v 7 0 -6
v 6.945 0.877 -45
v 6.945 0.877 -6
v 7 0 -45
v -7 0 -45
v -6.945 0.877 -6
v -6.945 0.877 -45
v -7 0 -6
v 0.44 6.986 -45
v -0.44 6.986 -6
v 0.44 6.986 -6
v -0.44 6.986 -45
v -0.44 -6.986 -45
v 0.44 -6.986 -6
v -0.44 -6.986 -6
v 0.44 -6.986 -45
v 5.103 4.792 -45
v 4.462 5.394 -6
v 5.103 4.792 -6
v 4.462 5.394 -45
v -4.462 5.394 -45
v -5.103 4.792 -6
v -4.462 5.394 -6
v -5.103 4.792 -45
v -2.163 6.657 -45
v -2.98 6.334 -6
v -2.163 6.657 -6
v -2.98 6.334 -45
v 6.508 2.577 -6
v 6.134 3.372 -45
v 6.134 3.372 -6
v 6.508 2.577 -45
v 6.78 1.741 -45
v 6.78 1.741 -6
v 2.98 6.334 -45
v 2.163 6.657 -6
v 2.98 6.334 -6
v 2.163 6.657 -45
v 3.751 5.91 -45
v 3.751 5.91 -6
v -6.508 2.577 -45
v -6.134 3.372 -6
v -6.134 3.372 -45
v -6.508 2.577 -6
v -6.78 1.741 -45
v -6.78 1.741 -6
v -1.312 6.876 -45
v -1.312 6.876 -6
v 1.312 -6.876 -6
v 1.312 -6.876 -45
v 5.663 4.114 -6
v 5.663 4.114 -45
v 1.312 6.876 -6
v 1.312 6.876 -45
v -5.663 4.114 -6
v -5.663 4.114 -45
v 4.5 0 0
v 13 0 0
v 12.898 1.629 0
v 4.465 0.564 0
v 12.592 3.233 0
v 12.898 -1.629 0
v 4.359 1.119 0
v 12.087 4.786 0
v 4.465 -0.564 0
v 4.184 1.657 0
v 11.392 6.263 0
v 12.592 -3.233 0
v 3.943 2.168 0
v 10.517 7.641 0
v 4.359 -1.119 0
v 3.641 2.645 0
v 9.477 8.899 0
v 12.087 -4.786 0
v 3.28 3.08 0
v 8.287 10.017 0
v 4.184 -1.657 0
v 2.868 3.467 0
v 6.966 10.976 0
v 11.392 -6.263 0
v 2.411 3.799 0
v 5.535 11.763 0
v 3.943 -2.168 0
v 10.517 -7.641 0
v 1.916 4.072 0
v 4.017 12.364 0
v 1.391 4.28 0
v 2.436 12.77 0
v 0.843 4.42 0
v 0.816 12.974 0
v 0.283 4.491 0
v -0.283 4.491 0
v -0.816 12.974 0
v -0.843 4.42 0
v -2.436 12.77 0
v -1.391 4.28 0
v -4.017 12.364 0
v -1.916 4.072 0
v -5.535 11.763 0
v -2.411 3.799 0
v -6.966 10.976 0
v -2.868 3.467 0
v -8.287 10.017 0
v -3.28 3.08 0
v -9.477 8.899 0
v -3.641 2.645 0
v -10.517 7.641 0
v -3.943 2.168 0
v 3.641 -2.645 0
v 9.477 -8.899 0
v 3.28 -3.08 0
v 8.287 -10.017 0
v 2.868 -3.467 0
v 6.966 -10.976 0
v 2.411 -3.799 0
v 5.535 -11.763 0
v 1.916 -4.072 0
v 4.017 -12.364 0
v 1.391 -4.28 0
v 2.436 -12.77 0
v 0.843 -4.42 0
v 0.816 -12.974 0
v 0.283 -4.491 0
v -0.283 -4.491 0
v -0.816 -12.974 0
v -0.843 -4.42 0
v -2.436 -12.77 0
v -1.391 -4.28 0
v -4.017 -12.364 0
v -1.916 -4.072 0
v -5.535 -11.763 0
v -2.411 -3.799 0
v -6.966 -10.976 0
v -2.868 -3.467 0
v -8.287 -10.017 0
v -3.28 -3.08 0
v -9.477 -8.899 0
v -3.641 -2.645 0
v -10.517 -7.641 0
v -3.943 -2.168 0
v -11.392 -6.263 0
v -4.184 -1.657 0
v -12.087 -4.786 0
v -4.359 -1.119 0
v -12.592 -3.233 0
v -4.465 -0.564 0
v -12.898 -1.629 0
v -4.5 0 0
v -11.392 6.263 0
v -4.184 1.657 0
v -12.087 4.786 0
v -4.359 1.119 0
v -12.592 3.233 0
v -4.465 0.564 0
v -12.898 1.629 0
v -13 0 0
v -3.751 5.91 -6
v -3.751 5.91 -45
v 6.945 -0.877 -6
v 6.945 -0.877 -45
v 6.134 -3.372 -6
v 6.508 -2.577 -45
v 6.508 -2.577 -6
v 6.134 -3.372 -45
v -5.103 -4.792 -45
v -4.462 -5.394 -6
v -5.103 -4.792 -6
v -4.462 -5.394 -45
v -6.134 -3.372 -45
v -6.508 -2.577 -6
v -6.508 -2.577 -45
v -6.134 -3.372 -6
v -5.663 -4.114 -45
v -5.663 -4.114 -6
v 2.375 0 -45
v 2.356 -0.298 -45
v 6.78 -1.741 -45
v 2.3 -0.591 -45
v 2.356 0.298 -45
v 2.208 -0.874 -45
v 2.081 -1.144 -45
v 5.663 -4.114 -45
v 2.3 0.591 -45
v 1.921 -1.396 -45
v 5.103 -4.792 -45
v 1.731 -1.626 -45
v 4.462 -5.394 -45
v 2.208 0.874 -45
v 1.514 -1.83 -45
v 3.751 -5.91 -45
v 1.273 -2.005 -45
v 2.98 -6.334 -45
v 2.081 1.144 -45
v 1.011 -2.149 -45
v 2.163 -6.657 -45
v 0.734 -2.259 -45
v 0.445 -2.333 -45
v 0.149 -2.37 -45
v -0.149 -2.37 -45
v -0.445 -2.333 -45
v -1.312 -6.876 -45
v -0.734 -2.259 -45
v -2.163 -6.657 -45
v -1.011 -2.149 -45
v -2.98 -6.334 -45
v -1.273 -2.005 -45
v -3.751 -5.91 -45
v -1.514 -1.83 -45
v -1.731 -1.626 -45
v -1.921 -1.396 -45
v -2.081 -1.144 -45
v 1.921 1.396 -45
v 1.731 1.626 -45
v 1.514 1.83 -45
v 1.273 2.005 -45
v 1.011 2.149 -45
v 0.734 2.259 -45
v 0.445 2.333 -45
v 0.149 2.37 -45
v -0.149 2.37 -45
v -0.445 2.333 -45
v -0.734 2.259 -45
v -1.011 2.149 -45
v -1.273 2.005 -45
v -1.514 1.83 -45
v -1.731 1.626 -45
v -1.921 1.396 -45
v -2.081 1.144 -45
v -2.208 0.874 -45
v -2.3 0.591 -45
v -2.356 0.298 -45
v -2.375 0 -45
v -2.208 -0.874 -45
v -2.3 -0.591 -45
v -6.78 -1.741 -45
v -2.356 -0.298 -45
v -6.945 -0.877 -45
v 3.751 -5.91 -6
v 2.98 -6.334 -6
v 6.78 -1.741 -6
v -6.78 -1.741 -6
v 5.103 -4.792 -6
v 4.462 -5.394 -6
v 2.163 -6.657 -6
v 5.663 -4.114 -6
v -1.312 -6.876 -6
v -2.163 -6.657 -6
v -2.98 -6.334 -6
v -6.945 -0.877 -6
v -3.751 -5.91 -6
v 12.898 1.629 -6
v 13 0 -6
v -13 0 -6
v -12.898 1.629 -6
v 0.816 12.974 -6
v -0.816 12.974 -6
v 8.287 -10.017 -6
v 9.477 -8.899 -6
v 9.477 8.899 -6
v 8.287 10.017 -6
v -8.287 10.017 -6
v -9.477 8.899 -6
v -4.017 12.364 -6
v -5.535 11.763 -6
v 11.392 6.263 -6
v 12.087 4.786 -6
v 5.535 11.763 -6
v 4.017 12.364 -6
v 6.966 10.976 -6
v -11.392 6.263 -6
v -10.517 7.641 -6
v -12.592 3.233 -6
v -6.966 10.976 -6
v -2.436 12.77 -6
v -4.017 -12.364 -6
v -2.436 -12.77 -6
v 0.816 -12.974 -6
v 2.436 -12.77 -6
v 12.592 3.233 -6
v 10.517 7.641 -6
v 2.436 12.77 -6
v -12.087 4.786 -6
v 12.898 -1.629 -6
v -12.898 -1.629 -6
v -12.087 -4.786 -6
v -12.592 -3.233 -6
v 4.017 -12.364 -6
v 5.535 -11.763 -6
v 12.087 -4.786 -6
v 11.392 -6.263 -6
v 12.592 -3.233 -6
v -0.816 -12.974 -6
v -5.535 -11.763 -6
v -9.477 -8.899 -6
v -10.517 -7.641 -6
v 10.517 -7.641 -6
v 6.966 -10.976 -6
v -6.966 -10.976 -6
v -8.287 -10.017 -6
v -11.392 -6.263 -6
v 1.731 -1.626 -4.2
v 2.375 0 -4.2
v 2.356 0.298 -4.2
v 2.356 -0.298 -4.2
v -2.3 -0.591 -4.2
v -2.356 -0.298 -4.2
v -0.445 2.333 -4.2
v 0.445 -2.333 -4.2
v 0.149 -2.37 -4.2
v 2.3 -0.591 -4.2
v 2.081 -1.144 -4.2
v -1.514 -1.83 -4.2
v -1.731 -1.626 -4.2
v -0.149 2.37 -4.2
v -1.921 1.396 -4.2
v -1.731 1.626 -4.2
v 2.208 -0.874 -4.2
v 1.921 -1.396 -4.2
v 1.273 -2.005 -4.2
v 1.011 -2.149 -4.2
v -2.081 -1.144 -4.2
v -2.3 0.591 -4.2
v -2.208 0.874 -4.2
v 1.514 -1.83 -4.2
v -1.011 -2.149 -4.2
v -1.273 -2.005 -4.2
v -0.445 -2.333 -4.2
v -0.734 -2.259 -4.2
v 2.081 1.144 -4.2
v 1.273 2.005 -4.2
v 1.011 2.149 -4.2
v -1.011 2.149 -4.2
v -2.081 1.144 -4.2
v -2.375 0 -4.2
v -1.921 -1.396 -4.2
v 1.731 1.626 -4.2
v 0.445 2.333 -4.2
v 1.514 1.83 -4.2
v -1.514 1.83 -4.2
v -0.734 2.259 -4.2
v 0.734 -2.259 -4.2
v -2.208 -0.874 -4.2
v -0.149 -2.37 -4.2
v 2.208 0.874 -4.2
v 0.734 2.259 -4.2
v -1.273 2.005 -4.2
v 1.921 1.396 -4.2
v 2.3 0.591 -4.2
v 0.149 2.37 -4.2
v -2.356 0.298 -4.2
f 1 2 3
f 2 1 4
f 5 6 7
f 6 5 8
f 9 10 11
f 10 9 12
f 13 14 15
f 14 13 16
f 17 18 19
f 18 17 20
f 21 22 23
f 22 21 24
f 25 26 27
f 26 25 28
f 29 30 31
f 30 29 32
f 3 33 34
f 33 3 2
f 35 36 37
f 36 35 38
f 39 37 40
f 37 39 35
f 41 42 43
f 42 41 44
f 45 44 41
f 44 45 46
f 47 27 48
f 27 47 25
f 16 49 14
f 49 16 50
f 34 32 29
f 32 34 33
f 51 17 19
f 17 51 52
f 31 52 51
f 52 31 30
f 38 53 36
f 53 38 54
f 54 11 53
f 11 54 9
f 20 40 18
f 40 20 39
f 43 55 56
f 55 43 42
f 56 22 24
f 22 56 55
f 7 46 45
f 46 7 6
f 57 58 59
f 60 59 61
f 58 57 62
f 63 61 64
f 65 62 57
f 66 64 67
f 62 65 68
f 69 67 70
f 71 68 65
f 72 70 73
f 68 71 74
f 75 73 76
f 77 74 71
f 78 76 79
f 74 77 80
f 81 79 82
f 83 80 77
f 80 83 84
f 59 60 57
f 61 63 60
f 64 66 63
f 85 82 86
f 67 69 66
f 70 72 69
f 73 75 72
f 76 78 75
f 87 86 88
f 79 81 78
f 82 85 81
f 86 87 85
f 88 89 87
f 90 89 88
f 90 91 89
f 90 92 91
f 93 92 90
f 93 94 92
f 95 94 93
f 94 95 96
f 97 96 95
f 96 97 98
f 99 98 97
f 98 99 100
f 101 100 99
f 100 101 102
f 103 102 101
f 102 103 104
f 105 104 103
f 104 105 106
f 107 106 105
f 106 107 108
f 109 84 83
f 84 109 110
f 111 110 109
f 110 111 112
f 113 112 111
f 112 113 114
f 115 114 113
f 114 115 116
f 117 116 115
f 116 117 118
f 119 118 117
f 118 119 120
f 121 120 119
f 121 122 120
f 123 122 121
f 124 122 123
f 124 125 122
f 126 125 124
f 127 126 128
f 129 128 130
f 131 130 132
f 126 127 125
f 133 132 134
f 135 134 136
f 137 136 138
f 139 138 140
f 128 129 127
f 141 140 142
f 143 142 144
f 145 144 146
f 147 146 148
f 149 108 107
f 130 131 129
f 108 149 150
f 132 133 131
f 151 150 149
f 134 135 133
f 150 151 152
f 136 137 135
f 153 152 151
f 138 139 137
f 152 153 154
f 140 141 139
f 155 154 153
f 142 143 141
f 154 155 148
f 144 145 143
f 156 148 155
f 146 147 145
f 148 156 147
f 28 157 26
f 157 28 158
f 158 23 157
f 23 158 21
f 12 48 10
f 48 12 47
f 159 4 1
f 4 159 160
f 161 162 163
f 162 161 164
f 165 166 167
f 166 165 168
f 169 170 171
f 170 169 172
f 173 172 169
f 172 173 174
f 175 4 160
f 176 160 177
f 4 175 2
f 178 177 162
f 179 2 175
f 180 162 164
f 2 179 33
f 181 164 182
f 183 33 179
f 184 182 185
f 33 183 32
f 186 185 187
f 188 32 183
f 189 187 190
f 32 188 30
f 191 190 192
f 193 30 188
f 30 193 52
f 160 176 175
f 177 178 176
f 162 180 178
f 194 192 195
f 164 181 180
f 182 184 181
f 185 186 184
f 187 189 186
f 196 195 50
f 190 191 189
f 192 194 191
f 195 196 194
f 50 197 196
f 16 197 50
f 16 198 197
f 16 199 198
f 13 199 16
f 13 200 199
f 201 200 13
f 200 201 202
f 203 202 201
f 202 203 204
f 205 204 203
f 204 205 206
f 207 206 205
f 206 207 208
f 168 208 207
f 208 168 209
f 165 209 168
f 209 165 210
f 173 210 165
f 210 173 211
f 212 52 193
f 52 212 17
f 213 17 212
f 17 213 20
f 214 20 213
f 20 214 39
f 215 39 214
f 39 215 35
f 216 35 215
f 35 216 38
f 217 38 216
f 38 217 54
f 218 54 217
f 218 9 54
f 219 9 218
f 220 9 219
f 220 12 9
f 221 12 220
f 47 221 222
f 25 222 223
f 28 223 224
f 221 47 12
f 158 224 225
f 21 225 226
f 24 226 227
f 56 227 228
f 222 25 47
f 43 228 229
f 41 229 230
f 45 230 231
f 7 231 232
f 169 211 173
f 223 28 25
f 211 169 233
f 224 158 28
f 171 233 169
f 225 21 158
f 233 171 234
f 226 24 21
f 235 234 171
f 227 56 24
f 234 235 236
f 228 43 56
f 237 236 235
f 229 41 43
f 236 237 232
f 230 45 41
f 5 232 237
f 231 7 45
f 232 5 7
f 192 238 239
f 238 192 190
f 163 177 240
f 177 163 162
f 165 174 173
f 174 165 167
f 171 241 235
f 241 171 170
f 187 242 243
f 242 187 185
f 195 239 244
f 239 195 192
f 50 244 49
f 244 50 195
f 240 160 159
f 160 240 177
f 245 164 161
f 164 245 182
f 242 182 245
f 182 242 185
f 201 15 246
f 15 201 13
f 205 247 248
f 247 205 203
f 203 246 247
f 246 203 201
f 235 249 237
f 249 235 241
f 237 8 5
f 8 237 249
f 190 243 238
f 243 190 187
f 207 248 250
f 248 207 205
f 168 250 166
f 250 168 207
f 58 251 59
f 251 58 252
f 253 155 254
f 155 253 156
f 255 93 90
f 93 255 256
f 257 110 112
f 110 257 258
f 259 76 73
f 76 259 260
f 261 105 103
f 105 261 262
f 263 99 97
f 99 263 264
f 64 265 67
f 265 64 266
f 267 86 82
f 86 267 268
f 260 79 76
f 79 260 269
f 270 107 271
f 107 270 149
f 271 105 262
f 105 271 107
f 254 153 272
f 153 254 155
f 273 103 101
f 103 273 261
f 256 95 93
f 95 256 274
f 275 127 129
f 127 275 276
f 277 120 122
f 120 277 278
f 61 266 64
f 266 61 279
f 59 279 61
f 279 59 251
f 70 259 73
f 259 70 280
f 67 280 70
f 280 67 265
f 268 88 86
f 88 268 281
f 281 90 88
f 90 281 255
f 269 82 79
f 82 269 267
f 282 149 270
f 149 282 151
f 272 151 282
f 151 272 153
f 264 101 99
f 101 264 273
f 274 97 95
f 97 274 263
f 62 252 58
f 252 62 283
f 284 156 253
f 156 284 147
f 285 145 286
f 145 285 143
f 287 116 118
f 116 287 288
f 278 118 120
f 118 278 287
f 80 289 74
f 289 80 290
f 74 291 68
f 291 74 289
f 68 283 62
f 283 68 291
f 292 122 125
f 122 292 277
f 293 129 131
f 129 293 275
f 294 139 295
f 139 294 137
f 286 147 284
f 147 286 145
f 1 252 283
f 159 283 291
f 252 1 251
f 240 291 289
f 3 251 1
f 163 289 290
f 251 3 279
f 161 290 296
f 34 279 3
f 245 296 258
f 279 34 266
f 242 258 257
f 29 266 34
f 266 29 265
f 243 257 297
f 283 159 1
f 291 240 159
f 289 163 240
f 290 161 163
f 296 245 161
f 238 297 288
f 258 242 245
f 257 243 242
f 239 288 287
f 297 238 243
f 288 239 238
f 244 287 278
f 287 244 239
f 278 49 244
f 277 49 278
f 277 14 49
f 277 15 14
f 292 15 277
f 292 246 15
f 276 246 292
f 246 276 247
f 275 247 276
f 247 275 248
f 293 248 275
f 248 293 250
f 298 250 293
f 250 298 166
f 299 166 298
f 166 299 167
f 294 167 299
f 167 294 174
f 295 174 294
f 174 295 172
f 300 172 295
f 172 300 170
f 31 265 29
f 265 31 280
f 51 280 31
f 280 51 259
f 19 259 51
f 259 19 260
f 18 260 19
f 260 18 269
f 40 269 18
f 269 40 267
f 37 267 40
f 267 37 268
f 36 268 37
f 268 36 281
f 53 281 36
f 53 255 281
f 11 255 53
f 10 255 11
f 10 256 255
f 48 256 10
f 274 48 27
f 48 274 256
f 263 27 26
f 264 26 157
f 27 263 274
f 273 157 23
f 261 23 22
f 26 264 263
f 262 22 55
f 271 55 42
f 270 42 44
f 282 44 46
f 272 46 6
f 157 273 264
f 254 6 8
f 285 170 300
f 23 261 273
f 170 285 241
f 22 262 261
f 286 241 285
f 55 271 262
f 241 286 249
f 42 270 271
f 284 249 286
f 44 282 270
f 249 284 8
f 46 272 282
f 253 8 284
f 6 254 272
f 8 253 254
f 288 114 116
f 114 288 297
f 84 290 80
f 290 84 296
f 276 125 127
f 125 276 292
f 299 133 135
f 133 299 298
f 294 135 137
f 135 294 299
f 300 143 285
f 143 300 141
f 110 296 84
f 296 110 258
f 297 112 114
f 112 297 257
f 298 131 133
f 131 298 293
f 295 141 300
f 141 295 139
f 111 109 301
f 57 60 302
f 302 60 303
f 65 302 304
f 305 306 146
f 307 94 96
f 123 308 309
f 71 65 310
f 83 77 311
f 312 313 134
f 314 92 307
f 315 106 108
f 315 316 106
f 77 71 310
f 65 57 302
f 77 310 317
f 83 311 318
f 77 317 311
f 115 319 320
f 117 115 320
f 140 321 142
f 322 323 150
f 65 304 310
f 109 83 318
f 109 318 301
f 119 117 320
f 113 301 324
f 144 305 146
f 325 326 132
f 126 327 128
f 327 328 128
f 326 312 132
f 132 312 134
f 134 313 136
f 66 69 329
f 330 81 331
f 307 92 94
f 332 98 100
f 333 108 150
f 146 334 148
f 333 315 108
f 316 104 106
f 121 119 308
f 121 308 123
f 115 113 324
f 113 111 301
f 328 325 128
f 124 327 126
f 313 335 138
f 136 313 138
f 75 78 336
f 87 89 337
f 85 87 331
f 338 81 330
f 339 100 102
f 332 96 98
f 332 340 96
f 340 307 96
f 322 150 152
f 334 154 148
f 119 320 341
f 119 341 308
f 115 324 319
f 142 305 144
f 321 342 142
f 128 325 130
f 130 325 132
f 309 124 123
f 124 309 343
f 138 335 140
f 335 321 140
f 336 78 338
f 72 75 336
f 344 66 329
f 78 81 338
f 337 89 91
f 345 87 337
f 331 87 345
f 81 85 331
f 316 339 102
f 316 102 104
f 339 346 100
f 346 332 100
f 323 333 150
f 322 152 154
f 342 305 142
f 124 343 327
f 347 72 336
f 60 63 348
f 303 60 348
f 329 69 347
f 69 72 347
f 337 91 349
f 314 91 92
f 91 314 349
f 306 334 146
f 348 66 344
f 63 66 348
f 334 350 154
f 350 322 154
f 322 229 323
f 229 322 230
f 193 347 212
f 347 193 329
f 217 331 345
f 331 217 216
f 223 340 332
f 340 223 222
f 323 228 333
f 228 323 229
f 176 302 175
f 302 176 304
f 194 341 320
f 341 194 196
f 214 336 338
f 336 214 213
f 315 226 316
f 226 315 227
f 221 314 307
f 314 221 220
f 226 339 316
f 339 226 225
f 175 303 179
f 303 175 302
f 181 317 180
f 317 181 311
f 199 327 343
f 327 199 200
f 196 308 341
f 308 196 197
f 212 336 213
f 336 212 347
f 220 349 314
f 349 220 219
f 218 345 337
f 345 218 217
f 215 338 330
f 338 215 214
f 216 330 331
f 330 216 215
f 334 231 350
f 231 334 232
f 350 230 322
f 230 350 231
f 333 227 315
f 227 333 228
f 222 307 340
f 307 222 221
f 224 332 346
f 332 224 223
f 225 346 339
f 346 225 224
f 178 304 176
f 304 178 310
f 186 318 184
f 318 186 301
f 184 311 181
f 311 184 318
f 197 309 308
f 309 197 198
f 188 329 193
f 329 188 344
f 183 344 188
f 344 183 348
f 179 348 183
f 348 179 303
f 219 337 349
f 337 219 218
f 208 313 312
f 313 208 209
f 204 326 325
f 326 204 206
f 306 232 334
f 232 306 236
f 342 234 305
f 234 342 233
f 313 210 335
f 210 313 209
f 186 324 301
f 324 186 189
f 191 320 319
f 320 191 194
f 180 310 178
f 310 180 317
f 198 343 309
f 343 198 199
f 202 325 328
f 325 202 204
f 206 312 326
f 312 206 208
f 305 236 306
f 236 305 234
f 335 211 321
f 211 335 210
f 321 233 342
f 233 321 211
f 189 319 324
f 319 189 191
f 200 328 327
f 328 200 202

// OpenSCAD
$fn = 50;


difference() {
	union() {
		translate(v = [0, 0, -45.0000000000]) {
			cylinder(h = 45, r = 7.0000000000);
		}
		translate(v = [0, 0, -6.0000000000]) {
			cylinder(h = 6, r = 13.0000000000);
		}
	}
	union() {
		translate(v = [0, 0, 0]) {
			rotate(a = [0, 0, 0]) {
				difference() {
					union() {
						#translate(v = [0, 0, -45.0000000000]) {
							cylinder(h = 45, r = 2.2500000000);
						}
						#translate(v = [0, 0, -4.2000000000]) {
							cylinder(h = 4.2000000000, r1 = 2.3750000000, r2 = 4.5000000000);
						}
						#translate(v = [0, 0, -45.0000000000]) {
							cylinder(h = 45, r = 2.3750000000);
						}
						#translate(v = [0, 0, -45.0000000000]) {
							cylinder(h = 45, r = 2.2500000000);
						}
					}
					union();
				}
			}
		}
	}
}
